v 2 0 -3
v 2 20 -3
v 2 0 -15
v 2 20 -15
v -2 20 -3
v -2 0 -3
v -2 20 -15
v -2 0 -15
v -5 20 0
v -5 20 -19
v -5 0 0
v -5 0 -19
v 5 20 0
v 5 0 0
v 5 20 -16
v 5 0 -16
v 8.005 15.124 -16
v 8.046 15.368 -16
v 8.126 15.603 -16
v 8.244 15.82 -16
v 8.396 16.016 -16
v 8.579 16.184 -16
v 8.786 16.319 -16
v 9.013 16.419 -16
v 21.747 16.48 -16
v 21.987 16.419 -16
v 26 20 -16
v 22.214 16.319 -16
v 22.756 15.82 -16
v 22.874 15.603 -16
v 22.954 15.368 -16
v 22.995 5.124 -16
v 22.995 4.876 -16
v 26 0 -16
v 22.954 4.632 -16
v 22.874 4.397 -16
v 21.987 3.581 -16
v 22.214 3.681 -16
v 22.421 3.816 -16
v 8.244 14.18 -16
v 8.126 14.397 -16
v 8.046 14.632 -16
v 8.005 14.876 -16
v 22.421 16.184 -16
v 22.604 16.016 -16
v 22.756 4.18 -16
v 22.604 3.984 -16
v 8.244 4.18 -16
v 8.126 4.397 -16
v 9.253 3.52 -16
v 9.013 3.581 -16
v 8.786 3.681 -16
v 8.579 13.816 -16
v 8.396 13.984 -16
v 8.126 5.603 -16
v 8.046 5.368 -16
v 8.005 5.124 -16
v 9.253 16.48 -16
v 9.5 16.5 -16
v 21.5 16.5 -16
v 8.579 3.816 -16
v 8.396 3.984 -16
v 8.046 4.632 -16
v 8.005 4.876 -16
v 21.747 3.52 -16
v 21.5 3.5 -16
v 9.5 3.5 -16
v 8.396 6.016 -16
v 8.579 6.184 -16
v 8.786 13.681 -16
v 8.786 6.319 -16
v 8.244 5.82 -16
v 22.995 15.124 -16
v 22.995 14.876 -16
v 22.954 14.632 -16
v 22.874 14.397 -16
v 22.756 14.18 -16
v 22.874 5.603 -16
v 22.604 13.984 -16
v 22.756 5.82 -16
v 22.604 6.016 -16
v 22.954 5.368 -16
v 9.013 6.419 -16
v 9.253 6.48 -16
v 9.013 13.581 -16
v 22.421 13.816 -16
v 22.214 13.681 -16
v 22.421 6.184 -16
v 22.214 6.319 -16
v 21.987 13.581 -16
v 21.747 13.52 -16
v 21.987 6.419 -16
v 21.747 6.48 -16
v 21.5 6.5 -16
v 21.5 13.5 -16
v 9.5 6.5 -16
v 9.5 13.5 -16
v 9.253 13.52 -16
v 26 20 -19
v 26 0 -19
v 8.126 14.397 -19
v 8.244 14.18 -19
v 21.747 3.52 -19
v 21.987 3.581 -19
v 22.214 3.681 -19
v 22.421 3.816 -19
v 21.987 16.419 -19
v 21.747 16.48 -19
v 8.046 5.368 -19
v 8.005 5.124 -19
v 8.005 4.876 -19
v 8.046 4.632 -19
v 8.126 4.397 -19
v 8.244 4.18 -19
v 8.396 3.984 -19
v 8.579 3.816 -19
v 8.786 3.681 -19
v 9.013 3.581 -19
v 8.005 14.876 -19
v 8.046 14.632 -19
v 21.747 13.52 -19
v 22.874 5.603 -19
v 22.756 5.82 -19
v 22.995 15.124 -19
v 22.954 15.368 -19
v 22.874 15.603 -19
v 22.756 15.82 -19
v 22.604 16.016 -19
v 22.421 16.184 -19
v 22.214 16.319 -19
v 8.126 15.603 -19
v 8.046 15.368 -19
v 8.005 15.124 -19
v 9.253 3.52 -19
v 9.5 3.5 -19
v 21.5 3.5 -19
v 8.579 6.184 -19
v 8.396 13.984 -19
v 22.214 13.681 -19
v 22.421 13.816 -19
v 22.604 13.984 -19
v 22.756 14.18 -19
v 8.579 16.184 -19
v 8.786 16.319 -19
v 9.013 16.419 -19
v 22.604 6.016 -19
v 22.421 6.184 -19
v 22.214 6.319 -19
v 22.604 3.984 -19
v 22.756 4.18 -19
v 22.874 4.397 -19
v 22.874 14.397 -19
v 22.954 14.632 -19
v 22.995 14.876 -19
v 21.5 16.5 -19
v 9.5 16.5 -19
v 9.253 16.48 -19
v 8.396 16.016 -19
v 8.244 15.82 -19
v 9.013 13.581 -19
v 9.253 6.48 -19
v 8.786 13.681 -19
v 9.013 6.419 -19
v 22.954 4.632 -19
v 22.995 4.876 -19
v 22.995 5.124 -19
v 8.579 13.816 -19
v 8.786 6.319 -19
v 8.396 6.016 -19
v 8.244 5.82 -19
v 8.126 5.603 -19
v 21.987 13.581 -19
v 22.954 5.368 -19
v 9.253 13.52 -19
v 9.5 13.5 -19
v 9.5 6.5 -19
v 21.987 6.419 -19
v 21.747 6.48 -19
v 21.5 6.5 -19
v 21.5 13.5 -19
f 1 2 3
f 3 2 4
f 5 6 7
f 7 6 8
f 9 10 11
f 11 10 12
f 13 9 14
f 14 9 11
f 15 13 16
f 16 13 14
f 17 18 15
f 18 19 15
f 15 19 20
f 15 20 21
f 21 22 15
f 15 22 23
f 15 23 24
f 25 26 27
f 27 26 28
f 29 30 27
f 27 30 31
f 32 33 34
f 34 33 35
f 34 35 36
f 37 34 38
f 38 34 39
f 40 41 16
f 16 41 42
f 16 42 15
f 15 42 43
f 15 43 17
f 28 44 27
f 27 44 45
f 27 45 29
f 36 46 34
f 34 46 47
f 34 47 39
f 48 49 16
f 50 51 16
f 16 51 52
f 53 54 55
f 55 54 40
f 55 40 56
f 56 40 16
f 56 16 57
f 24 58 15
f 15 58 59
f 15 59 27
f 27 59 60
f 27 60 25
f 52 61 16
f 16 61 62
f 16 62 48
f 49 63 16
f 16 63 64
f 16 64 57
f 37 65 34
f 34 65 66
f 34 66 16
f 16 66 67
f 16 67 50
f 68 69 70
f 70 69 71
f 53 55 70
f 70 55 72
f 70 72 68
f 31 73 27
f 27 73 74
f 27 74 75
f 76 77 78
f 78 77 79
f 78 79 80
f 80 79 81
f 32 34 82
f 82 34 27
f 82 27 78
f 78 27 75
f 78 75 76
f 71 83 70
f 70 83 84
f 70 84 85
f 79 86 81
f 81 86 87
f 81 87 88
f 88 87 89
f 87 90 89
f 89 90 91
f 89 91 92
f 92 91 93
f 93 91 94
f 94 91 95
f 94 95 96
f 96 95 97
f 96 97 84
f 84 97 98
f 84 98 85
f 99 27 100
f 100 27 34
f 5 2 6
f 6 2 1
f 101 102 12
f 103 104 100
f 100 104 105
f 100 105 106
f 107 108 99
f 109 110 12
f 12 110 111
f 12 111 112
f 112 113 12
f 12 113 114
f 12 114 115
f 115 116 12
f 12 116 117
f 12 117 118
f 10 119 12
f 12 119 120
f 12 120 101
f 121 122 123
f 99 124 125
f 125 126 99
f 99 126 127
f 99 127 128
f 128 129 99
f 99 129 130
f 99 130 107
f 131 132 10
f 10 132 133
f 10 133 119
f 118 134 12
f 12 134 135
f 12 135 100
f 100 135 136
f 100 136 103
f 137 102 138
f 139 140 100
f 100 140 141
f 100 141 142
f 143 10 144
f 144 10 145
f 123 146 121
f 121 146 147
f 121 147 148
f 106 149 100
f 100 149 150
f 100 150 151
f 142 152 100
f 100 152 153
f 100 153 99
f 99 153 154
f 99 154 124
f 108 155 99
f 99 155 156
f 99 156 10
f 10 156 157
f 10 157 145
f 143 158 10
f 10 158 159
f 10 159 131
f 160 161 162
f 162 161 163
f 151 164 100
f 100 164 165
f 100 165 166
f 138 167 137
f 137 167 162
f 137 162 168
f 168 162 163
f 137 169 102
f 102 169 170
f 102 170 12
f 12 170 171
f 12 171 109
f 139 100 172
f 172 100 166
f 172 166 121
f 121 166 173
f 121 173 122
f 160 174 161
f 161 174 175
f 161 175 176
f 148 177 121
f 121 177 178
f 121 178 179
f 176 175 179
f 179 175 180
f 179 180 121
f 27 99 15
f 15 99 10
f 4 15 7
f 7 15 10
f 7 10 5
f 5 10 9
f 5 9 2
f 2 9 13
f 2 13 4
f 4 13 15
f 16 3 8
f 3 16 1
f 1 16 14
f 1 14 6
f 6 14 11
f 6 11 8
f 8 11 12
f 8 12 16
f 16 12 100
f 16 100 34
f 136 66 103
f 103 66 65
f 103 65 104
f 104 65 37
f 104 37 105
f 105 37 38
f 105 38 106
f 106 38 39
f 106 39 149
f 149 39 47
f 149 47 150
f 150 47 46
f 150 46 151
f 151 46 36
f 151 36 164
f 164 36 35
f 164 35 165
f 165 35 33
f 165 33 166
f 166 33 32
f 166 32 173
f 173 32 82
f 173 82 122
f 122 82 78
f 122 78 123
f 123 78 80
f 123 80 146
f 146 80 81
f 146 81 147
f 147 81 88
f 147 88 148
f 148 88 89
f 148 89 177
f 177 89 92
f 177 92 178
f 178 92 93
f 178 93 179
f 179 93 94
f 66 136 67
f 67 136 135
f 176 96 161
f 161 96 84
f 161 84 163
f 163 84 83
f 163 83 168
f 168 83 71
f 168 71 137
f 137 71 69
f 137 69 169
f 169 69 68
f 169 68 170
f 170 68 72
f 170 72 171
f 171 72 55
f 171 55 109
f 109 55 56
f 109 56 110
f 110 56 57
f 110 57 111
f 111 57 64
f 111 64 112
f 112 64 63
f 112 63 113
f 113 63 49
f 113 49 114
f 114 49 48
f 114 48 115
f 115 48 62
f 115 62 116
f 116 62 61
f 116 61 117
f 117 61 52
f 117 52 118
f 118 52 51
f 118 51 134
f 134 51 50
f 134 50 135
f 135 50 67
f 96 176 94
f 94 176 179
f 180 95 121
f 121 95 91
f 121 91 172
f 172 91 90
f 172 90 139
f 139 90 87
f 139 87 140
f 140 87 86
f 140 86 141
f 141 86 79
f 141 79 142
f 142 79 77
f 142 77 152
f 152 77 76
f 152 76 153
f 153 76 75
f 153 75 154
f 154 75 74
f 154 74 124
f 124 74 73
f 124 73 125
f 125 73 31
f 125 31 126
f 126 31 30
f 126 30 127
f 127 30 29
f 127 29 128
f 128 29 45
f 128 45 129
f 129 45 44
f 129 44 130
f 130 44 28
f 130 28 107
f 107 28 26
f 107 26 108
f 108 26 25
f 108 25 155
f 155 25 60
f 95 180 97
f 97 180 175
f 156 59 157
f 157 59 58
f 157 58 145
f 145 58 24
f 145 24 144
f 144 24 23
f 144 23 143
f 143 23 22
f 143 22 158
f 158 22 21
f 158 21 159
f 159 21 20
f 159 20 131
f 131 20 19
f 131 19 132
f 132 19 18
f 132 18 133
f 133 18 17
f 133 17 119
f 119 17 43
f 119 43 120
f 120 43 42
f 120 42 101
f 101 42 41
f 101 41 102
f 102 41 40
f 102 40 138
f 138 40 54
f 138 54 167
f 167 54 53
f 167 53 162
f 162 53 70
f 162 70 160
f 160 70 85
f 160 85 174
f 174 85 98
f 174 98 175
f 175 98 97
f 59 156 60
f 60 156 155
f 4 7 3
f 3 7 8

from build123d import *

# Parameters (mm, degrees)
SALIENTE_EXTRUIR1_DEPTH = 20
CORTAR_EXTRUIR1_DEPTH   = 20
CROQUIS3_W              = 4
CROQUIS3_H              = 20
SALIENTE_EXTRUIR2_DEPTH = 5


with BuildPart() as part:
    # Croquis1 → Saliente-Extruir1 (new body)
    with BuildSketch(Plane(origin=(0, 0, 0), x_dir=(1, 0, 0), z_dir=(0, 1, 0))):
        Polygon((-5, 19), (-2, 19), (-2, 3), (2, 3), (2, 19), (26, 19), (26, 16), (5, 16), (5, 0), (-5, 0), align=None)
    extrude(amount=SALIENTE_EXTRUIR1_DEPTH)

    # Croquis2 → Cortar-Extruir1 (cut)
    with BuildSketch(Plane.XY.offset(-16)):
        with BuildLine():
            Line((21.5, 16.5), (9.5, 16.5))
            ThreePointArc((9.5, 16.5), (8, 15), (9.5, 13.5))
            Line((9.5, 13.5), (21.5, 13.5))
            ThreePointArc((21.5, 13.5), (23, 15), (21.5, 16.5))
        make_face()
        with BuildLine():
            Line((21.5, 3.5), (9.5, 3.5))
            ThreePointArc((9.5, 3.5), (8, 5), (9.5, 6.5))
            Line((9.5, 6.5), (21.5, 6.5))
            ThreePointArc((21.5, 6.5), (23, 5), (21.5, 3.5))
        make_face()
    extrude(amount=-CORTAR_EXTRUIR1_DEPTH, mode=Mode.SUBTRACT)

    # Croquis3 → Saliente-Extruir2 (add)
    with BuildSketch(Plane(origin=(-2, 0, 0), x_dir=(0, 0, -1), z_dir=(1, 0, 0))):
        with Locations((17, 10)):
            Rectangle(CROQUIS3_W, CROQUIS3_H)
    extrude(amount=SALIENTE_EXTRUIR2_DEPTH)


solid = part.part
